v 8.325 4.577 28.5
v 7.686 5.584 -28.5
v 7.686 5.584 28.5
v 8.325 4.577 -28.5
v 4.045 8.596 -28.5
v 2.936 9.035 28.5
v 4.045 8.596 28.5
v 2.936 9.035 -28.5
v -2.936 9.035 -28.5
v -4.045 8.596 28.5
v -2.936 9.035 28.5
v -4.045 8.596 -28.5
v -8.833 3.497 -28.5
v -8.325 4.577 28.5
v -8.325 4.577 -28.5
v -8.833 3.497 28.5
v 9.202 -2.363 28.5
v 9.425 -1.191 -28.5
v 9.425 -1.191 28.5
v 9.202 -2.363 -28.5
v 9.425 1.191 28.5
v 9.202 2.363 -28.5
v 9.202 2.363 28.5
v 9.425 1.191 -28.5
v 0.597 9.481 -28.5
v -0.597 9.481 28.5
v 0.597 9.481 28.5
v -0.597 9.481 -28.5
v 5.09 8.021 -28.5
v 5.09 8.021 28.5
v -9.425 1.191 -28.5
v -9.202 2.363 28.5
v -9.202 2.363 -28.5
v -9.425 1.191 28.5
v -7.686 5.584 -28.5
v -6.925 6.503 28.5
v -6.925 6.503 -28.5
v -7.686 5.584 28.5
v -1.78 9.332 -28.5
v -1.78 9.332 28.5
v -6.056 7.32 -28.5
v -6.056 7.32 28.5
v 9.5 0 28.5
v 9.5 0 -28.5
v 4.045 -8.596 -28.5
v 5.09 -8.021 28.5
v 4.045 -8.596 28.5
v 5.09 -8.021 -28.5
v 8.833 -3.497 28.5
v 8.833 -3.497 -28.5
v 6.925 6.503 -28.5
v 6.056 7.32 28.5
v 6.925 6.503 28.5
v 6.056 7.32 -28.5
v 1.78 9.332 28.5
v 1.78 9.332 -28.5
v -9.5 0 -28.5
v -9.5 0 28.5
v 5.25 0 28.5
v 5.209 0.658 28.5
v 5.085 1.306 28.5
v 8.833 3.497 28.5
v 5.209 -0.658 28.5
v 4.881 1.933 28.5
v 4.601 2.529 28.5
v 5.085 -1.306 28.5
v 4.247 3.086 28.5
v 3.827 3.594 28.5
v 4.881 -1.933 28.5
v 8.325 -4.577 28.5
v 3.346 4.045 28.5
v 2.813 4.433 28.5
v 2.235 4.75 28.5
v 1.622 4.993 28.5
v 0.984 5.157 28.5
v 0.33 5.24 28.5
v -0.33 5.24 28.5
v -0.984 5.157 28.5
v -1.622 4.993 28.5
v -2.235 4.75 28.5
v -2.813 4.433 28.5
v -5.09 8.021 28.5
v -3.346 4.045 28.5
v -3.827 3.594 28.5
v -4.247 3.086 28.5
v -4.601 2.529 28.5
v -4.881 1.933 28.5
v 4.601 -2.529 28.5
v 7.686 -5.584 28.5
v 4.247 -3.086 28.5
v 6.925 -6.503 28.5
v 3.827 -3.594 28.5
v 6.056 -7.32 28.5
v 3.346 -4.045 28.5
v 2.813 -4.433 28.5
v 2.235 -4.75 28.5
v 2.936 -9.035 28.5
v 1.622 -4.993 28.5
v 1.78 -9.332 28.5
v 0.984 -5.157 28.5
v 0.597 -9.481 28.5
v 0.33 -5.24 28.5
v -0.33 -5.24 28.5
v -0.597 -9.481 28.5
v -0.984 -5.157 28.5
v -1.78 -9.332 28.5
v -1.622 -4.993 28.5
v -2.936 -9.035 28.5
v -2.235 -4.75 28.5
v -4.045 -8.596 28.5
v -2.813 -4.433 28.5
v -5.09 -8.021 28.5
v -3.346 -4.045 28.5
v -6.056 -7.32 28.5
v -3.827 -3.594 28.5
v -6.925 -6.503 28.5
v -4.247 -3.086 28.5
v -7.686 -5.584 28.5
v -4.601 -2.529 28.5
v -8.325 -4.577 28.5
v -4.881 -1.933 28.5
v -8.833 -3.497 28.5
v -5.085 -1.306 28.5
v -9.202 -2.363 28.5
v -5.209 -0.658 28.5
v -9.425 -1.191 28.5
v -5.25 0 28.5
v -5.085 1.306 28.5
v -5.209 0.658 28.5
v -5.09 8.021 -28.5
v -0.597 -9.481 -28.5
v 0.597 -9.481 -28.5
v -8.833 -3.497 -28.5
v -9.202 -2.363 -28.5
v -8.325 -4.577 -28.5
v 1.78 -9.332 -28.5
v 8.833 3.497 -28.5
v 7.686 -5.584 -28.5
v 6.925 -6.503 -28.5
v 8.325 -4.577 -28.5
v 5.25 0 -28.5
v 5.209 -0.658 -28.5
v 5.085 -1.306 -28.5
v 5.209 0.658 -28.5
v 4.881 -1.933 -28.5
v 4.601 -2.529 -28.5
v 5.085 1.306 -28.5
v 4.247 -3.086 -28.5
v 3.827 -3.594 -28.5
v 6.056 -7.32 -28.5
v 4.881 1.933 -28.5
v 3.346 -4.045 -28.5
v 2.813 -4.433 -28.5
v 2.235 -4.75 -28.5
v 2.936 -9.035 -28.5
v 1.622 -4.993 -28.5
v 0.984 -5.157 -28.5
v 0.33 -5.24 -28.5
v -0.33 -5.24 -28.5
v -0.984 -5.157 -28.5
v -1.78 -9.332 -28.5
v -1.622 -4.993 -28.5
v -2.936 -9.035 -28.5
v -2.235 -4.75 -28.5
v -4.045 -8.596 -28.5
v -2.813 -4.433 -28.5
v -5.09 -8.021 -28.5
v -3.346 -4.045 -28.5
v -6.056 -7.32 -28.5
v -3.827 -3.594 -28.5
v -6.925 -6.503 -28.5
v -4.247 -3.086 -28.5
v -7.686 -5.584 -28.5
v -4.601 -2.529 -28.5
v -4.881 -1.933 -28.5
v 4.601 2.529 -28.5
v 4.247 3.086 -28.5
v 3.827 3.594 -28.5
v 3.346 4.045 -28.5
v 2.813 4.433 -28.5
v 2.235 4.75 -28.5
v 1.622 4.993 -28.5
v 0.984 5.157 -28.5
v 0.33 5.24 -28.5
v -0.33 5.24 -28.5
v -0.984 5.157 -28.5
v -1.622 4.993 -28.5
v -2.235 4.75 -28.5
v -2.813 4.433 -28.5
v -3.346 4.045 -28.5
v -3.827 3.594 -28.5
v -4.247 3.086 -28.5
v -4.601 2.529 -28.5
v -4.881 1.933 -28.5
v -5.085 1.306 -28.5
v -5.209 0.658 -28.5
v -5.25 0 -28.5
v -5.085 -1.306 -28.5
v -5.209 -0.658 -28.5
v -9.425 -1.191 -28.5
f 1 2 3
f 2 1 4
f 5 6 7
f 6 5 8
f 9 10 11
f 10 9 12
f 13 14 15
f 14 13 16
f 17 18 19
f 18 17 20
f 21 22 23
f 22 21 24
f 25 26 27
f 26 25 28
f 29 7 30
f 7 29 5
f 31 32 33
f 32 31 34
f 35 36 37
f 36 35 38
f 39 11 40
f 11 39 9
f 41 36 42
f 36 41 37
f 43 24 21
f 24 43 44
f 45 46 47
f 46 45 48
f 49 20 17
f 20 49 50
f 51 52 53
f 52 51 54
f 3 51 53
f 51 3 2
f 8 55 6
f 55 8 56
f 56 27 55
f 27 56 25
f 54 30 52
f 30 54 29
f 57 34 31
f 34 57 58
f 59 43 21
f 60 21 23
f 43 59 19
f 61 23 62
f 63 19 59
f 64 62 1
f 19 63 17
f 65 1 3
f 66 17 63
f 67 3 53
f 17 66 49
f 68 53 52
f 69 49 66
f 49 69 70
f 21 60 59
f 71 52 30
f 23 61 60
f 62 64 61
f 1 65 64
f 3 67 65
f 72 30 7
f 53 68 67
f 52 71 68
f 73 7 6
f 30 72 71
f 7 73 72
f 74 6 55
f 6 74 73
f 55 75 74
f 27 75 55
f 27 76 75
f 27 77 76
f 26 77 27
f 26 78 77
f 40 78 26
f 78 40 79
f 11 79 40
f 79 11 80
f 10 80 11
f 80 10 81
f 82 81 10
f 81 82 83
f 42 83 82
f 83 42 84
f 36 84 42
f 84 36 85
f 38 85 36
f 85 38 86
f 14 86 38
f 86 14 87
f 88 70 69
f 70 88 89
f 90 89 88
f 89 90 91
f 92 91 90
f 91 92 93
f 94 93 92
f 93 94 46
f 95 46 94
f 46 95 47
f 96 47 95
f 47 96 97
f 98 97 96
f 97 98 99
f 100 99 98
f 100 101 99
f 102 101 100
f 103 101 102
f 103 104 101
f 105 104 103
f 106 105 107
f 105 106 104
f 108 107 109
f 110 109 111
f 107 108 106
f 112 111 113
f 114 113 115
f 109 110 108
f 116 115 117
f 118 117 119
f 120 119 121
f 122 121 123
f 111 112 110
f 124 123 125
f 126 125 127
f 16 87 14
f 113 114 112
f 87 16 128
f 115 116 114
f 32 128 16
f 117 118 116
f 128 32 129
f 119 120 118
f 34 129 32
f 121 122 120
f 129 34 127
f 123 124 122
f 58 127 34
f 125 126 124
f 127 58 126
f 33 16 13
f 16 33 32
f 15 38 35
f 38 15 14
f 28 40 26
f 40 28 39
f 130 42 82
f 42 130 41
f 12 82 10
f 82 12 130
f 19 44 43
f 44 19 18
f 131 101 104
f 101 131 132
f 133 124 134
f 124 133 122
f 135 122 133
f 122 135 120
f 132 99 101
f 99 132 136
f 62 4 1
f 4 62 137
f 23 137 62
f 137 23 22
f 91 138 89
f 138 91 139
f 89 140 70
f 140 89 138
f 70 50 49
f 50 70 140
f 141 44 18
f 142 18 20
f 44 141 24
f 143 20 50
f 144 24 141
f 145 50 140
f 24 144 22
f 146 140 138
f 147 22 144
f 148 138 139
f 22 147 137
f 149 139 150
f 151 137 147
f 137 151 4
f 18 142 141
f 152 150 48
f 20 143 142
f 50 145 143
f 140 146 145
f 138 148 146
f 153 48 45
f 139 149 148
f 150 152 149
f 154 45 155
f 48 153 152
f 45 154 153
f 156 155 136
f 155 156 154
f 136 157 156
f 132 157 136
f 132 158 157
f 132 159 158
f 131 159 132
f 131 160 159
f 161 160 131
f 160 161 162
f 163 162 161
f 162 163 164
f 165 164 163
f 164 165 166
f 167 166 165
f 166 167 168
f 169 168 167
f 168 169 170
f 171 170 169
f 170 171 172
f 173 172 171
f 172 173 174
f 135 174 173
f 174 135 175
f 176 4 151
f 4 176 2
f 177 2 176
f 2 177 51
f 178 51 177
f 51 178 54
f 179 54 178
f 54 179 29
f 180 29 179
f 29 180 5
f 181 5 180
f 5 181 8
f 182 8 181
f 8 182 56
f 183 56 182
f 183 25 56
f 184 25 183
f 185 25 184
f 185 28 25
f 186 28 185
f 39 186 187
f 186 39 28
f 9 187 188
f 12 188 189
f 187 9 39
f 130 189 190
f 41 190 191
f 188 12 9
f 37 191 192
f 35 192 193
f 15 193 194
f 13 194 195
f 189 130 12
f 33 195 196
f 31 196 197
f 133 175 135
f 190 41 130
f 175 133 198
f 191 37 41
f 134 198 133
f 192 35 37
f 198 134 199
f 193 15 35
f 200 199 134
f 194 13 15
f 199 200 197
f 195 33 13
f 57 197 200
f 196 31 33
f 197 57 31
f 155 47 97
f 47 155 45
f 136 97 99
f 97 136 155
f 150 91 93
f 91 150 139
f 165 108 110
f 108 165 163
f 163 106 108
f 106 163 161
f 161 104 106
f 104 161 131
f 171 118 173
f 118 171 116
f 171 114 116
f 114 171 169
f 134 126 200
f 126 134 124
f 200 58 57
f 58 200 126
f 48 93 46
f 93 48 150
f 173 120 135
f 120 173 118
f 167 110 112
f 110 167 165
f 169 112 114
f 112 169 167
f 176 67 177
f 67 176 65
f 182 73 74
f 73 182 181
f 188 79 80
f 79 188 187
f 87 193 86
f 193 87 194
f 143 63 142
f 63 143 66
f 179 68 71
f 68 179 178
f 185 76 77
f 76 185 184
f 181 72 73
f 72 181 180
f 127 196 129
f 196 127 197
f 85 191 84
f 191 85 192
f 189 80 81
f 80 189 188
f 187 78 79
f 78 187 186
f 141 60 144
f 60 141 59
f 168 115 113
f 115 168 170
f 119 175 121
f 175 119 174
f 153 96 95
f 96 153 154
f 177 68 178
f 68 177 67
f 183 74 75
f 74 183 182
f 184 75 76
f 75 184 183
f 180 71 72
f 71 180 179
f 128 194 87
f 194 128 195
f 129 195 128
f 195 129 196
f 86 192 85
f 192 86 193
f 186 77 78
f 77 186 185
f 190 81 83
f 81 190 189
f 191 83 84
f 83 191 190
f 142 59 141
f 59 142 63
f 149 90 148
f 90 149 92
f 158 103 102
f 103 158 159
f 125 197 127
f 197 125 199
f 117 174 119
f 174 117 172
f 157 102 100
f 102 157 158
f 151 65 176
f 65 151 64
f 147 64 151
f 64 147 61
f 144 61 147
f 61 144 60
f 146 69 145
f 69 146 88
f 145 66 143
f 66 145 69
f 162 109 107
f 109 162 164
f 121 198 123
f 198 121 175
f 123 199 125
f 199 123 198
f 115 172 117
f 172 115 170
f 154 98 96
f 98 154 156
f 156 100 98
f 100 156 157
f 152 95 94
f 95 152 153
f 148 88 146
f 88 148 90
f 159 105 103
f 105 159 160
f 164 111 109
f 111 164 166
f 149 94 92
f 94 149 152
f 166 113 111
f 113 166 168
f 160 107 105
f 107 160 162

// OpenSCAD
$fn = 50;


difference() {
	union() {
		translate(v = [0, 0, -28.5000000000]) {
			cylinder(h = 57, r = 9.5000000000);
		}
	}
	union() {
		translate(v = [0, 0, -100.0000000000]) {
			cylinder(h = 200, r = 5.2500000000);
		}
	}
}
